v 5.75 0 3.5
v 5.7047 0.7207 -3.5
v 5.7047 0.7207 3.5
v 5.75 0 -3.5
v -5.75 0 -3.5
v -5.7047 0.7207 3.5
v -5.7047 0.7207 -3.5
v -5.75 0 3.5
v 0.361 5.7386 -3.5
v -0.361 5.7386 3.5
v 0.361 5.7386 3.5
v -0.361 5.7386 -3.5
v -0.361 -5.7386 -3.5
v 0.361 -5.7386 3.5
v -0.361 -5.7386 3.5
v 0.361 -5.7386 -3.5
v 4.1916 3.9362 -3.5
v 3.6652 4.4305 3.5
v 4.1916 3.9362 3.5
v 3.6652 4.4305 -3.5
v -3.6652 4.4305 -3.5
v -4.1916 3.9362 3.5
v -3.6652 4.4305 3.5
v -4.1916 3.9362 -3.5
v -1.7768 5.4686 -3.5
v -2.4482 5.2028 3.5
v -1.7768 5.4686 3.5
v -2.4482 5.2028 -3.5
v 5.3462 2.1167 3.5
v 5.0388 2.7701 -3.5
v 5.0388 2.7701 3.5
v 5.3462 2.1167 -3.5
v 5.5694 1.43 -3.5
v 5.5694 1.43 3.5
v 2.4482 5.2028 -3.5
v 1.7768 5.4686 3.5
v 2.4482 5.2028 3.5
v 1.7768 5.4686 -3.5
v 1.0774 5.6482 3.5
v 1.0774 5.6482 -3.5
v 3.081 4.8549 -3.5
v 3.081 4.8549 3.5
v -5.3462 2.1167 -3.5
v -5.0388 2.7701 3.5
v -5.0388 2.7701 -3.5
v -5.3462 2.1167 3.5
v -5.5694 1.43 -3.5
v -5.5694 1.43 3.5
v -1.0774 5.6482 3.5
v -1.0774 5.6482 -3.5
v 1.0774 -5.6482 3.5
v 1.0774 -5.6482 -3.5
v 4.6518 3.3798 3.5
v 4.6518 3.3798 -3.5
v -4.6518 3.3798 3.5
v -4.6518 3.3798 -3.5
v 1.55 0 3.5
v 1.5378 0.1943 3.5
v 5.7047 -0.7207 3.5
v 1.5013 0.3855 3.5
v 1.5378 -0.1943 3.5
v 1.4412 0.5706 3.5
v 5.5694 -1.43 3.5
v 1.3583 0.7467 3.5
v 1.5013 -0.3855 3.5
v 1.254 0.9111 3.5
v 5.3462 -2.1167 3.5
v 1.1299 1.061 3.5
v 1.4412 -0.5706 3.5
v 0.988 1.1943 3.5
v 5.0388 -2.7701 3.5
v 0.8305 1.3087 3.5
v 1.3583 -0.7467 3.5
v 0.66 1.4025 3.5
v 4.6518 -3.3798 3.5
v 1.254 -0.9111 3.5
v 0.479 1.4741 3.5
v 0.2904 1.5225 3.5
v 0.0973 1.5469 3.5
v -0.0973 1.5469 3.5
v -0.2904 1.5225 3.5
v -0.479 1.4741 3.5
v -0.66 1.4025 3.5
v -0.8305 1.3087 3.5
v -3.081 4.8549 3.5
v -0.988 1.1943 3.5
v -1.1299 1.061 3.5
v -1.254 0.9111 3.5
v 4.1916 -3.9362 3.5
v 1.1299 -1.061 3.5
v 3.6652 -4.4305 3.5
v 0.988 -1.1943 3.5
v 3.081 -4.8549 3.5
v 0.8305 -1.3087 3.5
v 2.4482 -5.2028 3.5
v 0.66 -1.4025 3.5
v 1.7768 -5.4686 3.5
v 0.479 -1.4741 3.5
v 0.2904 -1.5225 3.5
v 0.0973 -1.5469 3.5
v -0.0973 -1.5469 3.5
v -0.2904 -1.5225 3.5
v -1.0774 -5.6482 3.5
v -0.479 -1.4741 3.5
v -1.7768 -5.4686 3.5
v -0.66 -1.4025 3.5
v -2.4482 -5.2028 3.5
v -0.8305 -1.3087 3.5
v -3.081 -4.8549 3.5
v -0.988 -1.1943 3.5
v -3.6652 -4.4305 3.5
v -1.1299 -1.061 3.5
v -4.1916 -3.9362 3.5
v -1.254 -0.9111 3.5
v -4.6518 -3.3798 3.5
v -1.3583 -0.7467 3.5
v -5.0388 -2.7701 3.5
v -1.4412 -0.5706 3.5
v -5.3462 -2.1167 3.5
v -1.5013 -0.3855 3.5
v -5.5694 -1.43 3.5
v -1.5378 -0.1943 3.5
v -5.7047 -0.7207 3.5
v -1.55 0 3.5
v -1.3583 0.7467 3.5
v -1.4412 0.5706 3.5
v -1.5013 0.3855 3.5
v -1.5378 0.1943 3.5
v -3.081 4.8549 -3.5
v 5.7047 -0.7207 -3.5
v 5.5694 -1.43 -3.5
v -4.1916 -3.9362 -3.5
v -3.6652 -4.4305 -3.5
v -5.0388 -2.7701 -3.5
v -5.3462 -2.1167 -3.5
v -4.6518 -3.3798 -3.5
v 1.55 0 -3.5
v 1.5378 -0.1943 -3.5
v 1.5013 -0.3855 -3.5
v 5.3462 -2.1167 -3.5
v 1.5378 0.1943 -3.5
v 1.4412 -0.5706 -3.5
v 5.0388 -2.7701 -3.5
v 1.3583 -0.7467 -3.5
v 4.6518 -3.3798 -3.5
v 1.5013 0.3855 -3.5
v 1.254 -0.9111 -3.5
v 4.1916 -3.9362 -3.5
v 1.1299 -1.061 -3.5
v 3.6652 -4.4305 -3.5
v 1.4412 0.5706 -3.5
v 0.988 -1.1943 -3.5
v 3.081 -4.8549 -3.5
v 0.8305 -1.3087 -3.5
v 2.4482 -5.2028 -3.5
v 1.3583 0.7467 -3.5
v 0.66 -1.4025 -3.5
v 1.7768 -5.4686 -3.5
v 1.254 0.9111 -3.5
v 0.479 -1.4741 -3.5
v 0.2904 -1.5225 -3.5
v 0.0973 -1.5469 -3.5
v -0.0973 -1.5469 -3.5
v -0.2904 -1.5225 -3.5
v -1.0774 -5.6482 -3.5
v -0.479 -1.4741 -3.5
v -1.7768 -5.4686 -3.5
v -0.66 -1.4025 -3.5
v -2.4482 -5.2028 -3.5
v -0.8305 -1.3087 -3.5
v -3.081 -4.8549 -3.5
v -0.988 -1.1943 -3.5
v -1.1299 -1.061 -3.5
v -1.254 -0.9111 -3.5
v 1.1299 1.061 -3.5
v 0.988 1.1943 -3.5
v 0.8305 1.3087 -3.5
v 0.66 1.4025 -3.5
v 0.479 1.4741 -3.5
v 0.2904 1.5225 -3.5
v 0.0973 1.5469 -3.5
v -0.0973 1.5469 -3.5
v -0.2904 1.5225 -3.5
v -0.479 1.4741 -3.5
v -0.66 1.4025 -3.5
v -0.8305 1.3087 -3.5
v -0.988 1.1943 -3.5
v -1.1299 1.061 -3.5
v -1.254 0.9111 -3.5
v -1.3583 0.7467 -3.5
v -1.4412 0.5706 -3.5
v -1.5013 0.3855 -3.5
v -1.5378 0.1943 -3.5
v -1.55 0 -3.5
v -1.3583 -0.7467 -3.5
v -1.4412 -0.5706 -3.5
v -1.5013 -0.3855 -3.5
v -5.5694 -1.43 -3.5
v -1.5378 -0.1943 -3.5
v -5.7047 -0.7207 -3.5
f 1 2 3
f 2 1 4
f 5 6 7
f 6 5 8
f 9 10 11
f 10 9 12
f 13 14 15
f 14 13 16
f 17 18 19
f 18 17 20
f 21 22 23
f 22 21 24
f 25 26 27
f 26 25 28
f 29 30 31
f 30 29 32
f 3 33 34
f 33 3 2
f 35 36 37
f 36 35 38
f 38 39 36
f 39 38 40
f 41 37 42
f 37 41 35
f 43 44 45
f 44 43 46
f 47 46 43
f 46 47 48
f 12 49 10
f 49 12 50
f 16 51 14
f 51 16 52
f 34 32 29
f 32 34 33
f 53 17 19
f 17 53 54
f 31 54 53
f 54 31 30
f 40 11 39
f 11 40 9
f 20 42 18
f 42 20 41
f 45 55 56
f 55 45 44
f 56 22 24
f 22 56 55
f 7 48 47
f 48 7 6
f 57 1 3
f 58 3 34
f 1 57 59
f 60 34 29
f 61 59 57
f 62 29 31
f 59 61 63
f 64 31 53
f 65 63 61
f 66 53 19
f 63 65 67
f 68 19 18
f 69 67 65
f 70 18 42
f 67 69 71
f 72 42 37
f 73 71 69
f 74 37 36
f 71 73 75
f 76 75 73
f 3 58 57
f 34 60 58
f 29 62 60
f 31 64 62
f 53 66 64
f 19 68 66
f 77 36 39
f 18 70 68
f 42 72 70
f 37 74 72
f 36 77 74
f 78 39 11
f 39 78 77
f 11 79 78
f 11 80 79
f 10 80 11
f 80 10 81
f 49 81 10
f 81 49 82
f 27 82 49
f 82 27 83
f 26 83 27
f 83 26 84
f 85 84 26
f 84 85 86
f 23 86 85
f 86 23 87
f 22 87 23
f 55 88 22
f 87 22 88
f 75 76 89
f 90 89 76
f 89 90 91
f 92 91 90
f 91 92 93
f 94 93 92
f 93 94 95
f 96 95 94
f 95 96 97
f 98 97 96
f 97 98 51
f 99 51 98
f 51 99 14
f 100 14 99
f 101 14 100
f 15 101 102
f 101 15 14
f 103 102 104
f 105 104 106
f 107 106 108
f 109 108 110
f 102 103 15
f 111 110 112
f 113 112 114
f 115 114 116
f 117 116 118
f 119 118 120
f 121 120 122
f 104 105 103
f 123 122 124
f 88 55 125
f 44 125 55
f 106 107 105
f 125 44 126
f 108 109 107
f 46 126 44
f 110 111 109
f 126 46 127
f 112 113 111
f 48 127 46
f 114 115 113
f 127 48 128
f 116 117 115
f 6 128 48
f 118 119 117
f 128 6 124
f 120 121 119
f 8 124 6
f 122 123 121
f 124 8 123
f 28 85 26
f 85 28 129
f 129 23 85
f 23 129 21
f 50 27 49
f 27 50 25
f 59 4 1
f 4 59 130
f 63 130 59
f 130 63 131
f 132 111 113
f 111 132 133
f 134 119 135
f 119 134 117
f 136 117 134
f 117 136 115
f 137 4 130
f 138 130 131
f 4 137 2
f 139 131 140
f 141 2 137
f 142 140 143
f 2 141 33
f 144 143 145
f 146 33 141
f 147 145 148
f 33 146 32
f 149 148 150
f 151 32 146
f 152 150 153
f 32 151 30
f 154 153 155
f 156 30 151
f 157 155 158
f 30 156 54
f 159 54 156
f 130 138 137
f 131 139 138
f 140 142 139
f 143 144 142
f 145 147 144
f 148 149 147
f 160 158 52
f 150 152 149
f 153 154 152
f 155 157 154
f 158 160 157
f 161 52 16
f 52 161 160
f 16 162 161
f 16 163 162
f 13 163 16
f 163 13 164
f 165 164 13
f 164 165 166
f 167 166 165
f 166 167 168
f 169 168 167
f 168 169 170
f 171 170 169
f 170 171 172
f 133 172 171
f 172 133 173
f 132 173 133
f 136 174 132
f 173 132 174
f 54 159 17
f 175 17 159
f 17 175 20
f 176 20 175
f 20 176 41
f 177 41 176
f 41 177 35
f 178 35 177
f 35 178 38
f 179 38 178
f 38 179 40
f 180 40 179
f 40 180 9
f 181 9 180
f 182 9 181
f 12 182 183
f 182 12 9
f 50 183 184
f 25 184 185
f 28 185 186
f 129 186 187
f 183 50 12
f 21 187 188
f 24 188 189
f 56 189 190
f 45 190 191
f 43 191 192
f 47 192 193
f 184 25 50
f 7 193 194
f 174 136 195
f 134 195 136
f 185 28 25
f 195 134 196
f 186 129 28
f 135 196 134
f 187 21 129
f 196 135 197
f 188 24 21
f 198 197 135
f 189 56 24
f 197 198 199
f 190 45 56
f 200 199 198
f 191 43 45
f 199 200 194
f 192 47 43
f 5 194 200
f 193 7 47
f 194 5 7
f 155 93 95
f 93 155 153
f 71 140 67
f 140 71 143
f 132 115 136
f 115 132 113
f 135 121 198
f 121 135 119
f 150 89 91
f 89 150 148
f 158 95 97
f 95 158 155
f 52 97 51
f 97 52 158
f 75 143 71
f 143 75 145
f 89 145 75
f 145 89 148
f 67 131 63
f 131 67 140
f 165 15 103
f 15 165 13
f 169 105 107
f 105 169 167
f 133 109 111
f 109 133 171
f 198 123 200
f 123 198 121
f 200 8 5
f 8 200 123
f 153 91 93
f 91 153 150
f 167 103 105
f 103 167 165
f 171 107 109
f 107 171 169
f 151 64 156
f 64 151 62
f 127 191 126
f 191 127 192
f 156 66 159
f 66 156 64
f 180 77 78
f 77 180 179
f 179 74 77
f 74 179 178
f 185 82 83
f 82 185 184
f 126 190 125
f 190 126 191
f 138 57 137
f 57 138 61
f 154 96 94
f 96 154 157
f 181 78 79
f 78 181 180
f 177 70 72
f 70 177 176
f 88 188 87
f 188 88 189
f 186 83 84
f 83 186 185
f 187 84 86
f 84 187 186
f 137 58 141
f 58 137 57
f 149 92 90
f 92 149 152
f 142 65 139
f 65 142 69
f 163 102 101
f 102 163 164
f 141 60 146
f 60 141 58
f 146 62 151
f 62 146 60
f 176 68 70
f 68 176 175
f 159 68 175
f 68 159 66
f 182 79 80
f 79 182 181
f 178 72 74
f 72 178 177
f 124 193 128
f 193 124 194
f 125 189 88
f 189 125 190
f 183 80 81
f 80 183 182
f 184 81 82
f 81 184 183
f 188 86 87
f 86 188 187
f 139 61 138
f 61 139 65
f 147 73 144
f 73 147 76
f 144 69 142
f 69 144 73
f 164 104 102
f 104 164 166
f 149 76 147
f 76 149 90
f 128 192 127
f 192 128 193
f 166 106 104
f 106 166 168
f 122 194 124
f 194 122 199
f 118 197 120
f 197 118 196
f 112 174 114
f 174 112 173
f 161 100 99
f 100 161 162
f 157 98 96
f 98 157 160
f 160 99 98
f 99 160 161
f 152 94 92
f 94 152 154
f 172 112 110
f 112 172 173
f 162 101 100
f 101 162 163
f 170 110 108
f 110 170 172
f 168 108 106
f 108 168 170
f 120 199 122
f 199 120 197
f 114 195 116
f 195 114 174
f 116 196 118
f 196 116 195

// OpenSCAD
$fn = 50;


difference() {
	union() {
		translate(v = [0, 0, -3.5000000000]) {
			cylinder(h = 7, r = 5.7500000000);
		}
	}
	union() {
		translate(v = [0, 0, -100.0000000000]) {
			cylinder(h = 200, r = 1.5500000000);
		}
	}
}
